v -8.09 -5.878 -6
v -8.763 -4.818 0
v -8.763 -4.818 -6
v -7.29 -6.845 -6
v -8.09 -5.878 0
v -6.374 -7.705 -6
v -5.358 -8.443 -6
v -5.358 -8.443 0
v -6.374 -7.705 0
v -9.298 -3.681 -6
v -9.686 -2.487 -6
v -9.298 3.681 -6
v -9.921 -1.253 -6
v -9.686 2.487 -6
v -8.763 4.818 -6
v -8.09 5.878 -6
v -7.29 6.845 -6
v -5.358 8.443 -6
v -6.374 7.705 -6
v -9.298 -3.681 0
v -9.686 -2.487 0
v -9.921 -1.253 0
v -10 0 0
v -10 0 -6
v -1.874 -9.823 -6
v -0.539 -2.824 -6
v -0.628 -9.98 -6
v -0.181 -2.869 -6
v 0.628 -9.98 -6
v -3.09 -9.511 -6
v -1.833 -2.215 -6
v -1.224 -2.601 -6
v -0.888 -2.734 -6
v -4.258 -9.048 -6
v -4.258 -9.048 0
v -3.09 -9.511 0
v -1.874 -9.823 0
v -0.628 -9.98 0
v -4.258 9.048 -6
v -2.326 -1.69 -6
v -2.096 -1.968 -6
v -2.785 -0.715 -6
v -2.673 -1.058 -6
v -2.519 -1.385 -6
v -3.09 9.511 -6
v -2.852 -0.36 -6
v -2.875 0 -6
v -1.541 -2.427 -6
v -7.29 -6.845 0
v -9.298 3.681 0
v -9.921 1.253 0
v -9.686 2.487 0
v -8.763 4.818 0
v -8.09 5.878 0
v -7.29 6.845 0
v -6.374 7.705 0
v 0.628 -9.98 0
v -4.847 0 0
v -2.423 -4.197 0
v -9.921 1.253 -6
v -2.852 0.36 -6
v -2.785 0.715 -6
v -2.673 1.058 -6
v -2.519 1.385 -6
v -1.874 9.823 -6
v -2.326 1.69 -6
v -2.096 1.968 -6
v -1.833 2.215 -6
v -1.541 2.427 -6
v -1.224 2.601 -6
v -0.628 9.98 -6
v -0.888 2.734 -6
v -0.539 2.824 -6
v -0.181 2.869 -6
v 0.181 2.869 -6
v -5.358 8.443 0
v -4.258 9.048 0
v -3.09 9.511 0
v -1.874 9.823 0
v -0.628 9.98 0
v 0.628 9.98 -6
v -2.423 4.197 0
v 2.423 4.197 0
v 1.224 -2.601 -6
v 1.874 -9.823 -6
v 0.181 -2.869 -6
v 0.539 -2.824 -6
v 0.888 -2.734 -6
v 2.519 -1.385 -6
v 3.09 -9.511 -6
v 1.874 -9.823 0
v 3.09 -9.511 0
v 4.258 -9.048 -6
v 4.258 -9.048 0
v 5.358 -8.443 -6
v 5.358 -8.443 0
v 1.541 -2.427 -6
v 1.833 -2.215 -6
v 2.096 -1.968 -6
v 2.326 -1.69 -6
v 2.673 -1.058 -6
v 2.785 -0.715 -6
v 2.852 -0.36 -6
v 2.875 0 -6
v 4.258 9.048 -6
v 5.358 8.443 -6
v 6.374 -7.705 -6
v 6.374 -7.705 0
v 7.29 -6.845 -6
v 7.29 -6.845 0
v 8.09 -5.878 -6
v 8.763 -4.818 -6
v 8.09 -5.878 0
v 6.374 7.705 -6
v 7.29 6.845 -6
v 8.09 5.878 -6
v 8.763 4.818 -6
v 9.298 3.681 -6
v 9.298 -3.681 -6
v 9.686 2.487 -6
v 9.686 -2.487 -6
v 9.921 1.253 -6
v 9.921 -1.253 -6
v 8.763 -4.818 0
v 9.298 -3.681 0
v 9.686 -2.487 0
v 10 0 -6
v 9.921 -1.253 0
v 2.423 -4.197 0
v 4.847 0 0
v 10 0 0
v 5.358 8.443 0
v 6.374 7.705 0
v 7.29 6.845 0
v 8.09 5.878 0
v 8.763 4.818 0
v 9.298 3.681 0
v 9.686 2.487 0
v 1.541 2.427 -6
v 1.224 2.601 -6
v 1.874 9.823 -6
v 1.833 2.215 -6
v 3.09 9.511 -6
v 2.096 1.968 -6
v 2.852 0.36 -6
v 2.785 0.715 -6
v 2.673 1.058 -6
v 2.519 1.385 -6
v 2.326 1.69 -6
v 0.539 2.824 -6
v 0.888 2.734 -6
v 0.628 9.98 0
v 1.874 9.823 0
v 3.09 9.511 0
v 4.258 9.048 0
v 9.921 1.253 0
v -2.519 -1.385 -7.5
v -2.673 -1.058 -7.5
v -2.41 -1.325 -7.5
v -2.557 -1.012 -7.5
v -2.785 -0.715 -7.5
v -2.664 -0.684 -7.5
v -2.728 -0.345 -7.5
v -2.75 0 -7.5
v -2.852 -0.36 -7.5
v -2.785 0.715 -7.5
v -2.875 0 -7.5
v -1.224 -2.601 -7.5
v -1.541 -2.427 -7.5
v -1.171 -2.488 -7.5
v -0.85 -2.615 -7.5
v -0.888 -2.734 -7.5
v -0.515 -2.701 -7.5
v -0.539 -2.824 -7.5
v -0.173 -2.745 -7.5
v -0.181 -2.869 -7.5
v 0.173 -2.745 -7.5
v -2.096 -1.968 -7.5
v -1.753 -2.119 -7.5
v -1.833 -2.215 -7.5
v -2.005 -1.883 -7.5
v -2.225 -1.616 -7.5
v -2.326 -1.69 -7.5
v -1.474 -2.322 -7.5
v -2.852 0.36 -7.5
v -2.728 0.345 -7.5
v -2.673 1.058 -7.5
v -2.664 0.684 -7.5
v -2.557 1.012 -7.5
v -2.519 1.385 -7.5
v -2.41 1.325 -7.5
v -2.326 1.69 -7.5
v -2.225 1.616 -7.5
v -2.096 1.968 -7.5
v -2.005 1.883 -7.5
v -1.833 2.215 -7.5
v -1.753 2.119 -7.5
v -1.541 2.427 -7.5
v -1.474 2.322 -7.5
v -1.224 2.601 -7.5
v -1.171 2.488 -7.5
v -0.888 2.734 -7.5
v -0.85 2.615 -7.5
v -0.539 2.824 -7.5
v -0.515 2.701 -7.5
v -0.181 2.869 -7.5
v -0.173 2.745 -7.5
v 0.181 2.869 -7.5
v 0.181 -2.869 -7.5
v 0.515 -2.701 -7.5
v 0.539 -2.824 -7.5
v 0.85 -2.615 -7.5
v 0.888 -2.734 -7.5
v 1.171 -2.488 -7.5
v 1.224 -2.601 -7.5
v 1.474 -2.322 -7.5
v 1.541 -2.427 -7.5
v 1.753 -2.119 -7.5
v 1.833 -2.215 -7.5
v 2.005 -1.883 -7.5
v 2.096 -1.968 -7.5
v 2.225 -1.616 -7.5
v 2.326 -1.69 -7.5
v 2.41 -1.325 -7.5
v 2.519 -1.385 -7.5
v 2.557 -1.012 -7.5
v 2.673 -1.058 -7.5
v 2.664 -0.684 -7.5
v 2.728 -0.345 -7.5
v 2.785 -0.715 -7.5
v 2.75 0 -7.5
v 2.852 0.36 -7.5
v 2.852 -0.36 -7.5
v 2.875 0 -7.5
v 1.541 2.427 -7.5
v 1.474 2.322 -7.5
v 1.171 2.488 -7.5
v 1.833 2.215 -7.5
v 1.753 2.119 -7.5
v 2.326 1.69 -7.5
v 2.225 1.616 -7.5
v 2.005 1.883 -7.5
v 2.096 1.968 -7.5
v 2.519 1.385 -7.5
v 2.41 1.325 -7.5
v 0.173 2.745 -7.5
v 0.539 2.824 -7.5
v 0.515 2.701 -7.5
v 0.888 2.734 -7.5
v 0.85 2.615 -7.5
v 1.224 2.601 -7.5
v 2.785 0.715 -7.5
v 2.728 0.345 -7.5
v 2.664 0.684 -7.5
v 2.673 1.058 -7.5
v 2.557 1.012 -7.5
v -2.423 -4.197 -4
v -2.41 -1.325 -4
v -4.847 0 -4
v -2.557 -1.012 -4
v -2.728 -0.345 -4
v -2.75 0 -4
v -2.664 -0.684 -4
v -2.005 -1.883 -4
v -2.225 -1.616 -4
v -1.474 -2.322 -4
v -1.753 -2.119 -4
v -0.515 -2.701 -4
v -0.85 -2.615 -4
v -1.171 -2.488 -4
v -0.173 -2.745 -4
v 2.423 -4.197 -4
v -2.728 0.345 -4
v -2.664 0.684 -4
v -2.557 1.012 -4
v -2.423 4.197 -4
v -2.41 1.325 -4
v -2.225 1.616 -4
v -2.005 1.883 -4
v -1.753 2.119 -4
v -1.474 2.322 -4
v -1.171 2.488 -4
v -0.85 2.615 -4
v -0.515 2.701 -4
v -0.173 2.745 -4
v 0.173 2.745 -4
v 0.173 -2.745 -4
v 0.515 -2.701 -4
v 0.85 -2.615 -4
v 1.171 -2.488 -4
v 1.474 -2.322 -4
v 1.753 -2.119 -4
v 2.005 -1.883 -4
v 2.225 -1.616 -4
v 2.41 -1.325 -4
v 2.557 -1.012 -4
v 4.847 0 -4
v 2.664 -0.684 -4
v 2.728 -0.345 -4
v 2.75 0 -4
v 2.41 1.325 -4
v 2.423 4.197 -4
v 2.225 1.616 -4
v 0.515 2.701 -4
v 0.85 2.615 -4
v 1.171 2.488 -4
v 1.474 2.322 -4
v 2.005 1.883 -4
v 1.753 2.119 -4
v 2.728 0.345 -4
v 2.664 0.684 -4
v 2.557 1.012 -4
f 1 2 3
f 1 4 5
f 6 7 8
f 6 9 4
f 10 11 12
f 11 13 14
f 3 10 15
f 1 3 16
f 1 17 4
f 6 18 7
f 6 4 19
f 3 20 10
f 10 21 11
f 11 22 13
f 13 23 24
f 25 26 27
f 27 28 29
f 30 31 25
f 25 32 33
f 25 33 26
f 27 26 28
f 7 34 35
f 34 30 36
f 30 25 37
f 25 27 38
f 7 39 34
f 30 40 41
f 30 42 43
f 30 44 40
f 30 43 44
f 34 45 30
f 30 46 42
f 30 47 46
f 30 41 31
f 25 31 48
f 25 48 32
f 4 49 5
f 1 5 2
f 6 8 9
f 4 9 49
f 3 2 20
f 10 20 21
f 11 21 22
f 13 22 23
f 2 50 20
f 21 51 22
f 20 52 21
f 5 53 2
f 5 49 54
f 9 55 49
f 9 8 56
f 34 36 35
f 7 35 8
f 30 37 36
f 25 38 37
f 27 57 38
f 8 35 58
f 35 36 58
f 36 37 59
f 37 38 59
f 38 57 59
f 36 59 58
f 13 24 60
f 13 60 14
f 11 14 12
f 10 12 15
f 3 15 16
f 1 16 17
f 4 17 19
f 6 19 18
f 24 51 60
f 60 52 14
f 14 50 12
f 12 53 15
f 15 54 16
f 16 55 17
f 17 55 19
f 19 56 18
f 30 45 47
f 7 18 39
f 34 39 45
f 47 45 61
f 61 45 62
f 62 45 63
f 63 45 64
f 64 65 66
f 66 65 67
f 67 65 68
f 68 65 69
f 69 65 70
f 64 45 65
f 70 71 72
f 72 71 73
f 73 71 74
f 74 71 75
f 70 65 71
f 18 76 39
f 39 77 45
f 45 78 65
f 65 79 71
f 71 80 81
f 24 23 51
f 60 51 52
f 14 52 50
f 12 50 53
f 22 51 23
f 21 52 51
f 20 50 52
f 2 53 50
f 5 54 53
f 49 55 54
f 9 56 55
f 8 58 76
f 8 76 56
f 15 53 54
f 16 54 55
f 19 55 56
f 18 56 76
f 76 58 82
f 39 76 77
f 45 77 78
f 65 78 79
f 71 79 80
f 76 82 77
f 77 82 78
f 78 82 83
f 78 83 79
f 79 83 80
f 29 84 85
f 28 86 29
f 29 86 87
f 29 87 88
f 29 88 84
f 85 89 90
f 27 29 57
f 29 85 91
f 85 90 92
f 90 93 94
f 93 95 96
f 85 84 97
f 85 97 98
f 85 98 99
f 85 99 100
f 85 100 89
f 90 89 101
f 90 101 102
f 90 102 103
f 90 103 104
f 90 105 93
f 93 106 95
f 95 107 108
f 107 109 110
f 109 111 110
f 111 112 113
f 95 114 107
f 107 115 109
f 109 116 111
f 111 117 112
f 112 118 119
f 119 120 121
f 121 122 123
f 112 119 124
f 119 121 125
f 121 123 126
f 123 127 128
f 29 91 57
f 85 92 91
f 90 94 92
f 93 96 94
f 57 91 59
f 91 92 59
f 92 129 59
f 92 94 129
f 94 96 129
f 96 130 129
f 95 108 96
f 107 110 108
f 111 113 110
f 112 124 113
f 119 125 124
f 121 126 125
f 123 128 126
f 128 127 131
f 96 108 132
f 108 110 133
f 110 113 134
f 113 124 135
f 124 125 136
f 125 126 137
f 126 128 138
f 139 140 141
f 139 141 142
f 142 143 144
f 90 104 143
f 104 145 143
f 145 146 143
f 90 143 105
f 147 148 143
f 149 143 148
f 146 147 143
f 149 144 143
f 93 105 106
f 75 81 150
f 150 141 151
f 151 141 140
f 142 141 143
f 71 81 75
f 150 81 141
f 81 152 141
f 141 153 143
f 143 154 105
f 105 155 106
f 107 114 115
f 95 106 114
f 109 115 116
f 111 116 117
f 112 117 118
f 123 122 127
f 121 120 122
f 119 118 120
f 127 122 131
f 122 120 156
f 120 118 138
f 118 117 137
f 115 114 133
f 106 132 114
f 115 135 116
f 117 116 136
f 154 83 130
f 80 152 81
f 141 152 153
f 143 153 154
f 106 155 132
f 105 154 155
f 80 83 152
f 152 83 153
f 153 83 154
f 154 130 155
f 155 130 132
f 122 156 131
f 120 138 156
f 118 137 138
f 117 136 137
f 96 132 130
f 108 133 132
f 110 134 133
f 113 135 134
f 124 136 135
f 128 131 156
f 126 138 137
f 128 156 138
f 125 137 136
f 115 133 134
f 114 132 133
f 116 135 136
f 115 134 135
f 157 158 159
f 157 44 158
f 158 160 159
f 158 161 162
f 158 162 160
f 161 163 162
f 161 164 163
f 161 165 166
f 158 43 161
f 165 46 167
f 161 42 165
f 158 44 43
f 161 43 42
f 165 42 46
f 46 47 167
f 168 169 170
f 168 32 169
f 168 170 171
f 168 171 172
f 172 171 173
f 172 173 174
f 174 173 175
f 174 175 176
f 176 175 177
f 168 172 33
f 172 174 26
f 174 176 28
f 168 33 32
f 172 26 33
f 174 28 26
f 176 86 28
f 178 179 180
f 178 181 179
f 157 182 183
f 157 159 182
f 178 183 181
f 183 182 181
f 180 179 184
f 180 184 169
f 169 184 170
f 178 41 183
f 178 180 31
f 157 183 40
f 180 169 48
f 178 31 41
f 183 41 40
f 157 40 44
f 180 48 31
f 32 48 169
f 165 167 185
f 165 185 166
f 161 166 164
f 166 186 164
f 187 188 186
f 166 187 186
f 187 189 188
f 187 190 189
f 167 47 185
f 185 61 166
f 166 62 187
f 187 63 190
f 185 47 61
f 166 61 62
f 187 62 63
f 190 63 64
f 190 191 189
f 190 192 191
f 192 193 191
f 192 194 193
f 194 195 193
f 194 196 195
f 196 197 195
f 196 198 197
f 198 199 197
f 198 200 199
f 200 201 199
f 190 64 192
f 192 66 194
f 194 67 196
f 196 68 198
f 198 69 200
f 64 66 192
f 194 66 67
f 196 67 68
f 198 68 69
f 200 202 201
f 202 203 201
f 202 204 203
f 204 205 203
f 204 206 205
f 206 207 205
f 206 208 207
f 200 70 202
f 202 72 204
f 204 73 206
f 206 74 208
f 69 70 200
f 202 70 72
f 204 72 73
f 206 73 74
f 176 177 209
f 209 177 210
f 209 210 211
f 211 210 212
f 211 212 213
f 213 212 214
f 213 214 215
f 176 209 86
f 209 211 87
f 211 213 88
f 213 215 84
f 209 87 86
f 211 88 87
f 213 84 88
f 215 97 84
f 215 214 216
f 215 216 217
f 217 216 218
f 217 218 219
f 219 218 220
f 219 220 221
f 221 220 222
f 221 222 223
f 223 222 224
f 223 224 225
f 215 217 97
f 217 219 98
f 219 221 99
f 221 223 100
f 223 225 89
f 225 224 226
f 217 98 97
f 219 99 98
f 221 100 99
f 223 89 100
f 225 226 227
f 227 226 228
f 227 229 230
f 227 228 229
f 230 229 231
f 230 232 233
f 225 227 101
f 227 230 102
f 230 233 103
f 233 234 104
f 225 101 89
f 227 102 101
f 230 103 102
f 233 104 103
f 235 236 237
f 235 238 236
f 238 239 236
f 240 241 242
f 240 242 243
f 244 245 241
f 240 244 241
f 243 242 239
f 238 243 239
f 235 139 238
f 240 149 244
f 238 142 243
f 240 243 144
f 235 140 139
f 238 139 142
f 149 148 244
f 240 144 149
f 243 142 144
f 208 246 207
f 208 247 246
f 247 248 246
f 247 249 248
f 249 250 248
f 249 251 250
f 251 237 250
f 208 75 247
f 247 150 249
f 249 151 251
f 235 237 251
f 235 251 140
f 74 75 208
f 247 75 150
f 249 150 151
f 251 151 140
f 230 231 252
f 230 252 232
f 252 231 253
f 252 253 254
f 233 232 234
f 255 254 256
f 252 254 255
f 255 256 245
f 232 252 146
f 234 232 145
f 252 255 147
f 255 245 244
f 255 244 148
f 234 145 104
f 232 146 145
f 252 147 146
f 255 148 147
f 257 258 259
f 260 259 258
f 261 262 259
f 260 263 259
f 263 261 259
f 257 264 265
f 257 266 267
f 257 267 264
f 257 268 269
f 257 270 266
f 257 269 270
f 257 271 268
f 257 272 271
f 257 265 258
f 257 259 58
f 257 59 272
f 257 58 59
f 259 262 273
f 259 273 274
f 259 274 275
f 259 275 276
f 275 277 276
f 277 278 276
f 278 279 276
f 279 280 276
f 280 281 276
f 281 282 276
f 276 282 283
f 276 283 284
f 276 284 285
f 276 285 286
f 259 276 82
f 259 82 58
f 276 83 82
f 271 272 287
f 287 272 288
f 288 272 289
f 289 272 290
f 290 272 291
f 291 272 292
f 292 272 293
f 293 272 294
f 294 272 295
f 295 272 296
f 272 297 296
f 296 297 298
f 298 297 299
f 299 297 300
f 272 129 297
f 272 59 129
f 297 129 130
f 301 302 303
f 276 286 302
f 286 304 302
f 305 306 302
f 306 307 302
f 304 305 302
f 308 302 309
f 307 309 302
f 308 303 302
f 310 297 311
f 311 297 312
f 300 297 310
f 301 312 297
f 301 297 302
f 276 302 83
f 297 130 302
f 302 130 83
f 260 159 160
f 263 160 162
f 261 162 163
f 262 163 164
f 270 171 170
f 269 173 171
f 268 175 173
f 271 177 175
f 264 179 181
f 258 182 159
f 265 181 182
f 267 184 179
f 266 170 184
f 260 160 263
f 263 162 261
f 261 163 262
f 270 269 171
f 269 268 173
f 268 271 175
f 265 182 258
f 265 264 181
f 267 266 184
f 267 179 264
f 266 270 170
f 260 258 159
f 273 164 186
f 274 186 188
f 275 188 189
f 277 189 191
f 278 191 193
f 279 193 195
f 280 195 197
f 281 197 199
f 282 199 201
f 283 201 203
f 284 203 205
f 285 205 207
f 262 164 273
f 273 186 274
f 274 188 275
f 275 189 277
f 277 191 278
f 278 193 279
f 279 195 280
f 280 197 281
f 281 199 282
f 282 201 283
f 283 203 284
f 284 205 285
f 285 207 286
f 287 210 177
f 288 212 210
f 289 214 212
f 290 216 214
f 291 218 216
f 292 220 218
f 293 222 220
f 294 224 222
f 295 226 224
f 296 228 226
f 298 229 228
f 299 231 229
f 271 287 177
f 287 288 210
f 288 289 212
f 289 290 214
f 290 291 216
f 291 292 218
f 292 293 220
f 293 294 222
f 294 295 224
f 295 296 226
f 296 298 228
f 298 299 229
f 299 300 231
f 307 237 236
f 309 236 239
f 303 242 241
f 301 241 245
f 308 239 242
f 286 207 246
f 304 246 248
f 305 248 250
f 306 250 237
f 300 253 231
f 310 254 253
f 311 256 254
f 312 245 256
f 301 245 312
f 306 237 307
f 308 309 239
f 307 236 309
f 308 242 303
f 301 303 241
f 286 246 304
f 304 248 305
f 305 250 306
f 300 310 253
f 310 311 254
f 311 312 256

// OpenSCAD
$fn = 50;

difference() {
	union() {
		translate(v = [0, 0, -6.0]) {
			cylinder(h = 6.0, r = 10.0);
		}
		#translate(v = [0, 0, -7.5]) {
			cylinder(h = 7.5, r = 2.875);
		}
	}
	union() {
		translate(v = [0, 0, 0]) {
			rotate(a = [0, 0, 0]) {
				difference() {
					union() {
						translate(v = [0, 0, -4]) {
							linear_extrude(height = 4) {
								polygon(points = [[4.8468, 0.0], [2.4234000000000004, 4.197451927062417], [-2.423399999999999, 4.197451927062417], [-4.8468, 5.935618106107392e-16], [-2.423400000000002, -4.197451927062416], [2.423399999999997, -4.197451927062419]]);
							}
						}
					}
					union();
				}
			}
		}
		#translate(v = [0, 0, -100.0]) {
			cylinder(h = 200, r = 2.75);
		}
	}
}
